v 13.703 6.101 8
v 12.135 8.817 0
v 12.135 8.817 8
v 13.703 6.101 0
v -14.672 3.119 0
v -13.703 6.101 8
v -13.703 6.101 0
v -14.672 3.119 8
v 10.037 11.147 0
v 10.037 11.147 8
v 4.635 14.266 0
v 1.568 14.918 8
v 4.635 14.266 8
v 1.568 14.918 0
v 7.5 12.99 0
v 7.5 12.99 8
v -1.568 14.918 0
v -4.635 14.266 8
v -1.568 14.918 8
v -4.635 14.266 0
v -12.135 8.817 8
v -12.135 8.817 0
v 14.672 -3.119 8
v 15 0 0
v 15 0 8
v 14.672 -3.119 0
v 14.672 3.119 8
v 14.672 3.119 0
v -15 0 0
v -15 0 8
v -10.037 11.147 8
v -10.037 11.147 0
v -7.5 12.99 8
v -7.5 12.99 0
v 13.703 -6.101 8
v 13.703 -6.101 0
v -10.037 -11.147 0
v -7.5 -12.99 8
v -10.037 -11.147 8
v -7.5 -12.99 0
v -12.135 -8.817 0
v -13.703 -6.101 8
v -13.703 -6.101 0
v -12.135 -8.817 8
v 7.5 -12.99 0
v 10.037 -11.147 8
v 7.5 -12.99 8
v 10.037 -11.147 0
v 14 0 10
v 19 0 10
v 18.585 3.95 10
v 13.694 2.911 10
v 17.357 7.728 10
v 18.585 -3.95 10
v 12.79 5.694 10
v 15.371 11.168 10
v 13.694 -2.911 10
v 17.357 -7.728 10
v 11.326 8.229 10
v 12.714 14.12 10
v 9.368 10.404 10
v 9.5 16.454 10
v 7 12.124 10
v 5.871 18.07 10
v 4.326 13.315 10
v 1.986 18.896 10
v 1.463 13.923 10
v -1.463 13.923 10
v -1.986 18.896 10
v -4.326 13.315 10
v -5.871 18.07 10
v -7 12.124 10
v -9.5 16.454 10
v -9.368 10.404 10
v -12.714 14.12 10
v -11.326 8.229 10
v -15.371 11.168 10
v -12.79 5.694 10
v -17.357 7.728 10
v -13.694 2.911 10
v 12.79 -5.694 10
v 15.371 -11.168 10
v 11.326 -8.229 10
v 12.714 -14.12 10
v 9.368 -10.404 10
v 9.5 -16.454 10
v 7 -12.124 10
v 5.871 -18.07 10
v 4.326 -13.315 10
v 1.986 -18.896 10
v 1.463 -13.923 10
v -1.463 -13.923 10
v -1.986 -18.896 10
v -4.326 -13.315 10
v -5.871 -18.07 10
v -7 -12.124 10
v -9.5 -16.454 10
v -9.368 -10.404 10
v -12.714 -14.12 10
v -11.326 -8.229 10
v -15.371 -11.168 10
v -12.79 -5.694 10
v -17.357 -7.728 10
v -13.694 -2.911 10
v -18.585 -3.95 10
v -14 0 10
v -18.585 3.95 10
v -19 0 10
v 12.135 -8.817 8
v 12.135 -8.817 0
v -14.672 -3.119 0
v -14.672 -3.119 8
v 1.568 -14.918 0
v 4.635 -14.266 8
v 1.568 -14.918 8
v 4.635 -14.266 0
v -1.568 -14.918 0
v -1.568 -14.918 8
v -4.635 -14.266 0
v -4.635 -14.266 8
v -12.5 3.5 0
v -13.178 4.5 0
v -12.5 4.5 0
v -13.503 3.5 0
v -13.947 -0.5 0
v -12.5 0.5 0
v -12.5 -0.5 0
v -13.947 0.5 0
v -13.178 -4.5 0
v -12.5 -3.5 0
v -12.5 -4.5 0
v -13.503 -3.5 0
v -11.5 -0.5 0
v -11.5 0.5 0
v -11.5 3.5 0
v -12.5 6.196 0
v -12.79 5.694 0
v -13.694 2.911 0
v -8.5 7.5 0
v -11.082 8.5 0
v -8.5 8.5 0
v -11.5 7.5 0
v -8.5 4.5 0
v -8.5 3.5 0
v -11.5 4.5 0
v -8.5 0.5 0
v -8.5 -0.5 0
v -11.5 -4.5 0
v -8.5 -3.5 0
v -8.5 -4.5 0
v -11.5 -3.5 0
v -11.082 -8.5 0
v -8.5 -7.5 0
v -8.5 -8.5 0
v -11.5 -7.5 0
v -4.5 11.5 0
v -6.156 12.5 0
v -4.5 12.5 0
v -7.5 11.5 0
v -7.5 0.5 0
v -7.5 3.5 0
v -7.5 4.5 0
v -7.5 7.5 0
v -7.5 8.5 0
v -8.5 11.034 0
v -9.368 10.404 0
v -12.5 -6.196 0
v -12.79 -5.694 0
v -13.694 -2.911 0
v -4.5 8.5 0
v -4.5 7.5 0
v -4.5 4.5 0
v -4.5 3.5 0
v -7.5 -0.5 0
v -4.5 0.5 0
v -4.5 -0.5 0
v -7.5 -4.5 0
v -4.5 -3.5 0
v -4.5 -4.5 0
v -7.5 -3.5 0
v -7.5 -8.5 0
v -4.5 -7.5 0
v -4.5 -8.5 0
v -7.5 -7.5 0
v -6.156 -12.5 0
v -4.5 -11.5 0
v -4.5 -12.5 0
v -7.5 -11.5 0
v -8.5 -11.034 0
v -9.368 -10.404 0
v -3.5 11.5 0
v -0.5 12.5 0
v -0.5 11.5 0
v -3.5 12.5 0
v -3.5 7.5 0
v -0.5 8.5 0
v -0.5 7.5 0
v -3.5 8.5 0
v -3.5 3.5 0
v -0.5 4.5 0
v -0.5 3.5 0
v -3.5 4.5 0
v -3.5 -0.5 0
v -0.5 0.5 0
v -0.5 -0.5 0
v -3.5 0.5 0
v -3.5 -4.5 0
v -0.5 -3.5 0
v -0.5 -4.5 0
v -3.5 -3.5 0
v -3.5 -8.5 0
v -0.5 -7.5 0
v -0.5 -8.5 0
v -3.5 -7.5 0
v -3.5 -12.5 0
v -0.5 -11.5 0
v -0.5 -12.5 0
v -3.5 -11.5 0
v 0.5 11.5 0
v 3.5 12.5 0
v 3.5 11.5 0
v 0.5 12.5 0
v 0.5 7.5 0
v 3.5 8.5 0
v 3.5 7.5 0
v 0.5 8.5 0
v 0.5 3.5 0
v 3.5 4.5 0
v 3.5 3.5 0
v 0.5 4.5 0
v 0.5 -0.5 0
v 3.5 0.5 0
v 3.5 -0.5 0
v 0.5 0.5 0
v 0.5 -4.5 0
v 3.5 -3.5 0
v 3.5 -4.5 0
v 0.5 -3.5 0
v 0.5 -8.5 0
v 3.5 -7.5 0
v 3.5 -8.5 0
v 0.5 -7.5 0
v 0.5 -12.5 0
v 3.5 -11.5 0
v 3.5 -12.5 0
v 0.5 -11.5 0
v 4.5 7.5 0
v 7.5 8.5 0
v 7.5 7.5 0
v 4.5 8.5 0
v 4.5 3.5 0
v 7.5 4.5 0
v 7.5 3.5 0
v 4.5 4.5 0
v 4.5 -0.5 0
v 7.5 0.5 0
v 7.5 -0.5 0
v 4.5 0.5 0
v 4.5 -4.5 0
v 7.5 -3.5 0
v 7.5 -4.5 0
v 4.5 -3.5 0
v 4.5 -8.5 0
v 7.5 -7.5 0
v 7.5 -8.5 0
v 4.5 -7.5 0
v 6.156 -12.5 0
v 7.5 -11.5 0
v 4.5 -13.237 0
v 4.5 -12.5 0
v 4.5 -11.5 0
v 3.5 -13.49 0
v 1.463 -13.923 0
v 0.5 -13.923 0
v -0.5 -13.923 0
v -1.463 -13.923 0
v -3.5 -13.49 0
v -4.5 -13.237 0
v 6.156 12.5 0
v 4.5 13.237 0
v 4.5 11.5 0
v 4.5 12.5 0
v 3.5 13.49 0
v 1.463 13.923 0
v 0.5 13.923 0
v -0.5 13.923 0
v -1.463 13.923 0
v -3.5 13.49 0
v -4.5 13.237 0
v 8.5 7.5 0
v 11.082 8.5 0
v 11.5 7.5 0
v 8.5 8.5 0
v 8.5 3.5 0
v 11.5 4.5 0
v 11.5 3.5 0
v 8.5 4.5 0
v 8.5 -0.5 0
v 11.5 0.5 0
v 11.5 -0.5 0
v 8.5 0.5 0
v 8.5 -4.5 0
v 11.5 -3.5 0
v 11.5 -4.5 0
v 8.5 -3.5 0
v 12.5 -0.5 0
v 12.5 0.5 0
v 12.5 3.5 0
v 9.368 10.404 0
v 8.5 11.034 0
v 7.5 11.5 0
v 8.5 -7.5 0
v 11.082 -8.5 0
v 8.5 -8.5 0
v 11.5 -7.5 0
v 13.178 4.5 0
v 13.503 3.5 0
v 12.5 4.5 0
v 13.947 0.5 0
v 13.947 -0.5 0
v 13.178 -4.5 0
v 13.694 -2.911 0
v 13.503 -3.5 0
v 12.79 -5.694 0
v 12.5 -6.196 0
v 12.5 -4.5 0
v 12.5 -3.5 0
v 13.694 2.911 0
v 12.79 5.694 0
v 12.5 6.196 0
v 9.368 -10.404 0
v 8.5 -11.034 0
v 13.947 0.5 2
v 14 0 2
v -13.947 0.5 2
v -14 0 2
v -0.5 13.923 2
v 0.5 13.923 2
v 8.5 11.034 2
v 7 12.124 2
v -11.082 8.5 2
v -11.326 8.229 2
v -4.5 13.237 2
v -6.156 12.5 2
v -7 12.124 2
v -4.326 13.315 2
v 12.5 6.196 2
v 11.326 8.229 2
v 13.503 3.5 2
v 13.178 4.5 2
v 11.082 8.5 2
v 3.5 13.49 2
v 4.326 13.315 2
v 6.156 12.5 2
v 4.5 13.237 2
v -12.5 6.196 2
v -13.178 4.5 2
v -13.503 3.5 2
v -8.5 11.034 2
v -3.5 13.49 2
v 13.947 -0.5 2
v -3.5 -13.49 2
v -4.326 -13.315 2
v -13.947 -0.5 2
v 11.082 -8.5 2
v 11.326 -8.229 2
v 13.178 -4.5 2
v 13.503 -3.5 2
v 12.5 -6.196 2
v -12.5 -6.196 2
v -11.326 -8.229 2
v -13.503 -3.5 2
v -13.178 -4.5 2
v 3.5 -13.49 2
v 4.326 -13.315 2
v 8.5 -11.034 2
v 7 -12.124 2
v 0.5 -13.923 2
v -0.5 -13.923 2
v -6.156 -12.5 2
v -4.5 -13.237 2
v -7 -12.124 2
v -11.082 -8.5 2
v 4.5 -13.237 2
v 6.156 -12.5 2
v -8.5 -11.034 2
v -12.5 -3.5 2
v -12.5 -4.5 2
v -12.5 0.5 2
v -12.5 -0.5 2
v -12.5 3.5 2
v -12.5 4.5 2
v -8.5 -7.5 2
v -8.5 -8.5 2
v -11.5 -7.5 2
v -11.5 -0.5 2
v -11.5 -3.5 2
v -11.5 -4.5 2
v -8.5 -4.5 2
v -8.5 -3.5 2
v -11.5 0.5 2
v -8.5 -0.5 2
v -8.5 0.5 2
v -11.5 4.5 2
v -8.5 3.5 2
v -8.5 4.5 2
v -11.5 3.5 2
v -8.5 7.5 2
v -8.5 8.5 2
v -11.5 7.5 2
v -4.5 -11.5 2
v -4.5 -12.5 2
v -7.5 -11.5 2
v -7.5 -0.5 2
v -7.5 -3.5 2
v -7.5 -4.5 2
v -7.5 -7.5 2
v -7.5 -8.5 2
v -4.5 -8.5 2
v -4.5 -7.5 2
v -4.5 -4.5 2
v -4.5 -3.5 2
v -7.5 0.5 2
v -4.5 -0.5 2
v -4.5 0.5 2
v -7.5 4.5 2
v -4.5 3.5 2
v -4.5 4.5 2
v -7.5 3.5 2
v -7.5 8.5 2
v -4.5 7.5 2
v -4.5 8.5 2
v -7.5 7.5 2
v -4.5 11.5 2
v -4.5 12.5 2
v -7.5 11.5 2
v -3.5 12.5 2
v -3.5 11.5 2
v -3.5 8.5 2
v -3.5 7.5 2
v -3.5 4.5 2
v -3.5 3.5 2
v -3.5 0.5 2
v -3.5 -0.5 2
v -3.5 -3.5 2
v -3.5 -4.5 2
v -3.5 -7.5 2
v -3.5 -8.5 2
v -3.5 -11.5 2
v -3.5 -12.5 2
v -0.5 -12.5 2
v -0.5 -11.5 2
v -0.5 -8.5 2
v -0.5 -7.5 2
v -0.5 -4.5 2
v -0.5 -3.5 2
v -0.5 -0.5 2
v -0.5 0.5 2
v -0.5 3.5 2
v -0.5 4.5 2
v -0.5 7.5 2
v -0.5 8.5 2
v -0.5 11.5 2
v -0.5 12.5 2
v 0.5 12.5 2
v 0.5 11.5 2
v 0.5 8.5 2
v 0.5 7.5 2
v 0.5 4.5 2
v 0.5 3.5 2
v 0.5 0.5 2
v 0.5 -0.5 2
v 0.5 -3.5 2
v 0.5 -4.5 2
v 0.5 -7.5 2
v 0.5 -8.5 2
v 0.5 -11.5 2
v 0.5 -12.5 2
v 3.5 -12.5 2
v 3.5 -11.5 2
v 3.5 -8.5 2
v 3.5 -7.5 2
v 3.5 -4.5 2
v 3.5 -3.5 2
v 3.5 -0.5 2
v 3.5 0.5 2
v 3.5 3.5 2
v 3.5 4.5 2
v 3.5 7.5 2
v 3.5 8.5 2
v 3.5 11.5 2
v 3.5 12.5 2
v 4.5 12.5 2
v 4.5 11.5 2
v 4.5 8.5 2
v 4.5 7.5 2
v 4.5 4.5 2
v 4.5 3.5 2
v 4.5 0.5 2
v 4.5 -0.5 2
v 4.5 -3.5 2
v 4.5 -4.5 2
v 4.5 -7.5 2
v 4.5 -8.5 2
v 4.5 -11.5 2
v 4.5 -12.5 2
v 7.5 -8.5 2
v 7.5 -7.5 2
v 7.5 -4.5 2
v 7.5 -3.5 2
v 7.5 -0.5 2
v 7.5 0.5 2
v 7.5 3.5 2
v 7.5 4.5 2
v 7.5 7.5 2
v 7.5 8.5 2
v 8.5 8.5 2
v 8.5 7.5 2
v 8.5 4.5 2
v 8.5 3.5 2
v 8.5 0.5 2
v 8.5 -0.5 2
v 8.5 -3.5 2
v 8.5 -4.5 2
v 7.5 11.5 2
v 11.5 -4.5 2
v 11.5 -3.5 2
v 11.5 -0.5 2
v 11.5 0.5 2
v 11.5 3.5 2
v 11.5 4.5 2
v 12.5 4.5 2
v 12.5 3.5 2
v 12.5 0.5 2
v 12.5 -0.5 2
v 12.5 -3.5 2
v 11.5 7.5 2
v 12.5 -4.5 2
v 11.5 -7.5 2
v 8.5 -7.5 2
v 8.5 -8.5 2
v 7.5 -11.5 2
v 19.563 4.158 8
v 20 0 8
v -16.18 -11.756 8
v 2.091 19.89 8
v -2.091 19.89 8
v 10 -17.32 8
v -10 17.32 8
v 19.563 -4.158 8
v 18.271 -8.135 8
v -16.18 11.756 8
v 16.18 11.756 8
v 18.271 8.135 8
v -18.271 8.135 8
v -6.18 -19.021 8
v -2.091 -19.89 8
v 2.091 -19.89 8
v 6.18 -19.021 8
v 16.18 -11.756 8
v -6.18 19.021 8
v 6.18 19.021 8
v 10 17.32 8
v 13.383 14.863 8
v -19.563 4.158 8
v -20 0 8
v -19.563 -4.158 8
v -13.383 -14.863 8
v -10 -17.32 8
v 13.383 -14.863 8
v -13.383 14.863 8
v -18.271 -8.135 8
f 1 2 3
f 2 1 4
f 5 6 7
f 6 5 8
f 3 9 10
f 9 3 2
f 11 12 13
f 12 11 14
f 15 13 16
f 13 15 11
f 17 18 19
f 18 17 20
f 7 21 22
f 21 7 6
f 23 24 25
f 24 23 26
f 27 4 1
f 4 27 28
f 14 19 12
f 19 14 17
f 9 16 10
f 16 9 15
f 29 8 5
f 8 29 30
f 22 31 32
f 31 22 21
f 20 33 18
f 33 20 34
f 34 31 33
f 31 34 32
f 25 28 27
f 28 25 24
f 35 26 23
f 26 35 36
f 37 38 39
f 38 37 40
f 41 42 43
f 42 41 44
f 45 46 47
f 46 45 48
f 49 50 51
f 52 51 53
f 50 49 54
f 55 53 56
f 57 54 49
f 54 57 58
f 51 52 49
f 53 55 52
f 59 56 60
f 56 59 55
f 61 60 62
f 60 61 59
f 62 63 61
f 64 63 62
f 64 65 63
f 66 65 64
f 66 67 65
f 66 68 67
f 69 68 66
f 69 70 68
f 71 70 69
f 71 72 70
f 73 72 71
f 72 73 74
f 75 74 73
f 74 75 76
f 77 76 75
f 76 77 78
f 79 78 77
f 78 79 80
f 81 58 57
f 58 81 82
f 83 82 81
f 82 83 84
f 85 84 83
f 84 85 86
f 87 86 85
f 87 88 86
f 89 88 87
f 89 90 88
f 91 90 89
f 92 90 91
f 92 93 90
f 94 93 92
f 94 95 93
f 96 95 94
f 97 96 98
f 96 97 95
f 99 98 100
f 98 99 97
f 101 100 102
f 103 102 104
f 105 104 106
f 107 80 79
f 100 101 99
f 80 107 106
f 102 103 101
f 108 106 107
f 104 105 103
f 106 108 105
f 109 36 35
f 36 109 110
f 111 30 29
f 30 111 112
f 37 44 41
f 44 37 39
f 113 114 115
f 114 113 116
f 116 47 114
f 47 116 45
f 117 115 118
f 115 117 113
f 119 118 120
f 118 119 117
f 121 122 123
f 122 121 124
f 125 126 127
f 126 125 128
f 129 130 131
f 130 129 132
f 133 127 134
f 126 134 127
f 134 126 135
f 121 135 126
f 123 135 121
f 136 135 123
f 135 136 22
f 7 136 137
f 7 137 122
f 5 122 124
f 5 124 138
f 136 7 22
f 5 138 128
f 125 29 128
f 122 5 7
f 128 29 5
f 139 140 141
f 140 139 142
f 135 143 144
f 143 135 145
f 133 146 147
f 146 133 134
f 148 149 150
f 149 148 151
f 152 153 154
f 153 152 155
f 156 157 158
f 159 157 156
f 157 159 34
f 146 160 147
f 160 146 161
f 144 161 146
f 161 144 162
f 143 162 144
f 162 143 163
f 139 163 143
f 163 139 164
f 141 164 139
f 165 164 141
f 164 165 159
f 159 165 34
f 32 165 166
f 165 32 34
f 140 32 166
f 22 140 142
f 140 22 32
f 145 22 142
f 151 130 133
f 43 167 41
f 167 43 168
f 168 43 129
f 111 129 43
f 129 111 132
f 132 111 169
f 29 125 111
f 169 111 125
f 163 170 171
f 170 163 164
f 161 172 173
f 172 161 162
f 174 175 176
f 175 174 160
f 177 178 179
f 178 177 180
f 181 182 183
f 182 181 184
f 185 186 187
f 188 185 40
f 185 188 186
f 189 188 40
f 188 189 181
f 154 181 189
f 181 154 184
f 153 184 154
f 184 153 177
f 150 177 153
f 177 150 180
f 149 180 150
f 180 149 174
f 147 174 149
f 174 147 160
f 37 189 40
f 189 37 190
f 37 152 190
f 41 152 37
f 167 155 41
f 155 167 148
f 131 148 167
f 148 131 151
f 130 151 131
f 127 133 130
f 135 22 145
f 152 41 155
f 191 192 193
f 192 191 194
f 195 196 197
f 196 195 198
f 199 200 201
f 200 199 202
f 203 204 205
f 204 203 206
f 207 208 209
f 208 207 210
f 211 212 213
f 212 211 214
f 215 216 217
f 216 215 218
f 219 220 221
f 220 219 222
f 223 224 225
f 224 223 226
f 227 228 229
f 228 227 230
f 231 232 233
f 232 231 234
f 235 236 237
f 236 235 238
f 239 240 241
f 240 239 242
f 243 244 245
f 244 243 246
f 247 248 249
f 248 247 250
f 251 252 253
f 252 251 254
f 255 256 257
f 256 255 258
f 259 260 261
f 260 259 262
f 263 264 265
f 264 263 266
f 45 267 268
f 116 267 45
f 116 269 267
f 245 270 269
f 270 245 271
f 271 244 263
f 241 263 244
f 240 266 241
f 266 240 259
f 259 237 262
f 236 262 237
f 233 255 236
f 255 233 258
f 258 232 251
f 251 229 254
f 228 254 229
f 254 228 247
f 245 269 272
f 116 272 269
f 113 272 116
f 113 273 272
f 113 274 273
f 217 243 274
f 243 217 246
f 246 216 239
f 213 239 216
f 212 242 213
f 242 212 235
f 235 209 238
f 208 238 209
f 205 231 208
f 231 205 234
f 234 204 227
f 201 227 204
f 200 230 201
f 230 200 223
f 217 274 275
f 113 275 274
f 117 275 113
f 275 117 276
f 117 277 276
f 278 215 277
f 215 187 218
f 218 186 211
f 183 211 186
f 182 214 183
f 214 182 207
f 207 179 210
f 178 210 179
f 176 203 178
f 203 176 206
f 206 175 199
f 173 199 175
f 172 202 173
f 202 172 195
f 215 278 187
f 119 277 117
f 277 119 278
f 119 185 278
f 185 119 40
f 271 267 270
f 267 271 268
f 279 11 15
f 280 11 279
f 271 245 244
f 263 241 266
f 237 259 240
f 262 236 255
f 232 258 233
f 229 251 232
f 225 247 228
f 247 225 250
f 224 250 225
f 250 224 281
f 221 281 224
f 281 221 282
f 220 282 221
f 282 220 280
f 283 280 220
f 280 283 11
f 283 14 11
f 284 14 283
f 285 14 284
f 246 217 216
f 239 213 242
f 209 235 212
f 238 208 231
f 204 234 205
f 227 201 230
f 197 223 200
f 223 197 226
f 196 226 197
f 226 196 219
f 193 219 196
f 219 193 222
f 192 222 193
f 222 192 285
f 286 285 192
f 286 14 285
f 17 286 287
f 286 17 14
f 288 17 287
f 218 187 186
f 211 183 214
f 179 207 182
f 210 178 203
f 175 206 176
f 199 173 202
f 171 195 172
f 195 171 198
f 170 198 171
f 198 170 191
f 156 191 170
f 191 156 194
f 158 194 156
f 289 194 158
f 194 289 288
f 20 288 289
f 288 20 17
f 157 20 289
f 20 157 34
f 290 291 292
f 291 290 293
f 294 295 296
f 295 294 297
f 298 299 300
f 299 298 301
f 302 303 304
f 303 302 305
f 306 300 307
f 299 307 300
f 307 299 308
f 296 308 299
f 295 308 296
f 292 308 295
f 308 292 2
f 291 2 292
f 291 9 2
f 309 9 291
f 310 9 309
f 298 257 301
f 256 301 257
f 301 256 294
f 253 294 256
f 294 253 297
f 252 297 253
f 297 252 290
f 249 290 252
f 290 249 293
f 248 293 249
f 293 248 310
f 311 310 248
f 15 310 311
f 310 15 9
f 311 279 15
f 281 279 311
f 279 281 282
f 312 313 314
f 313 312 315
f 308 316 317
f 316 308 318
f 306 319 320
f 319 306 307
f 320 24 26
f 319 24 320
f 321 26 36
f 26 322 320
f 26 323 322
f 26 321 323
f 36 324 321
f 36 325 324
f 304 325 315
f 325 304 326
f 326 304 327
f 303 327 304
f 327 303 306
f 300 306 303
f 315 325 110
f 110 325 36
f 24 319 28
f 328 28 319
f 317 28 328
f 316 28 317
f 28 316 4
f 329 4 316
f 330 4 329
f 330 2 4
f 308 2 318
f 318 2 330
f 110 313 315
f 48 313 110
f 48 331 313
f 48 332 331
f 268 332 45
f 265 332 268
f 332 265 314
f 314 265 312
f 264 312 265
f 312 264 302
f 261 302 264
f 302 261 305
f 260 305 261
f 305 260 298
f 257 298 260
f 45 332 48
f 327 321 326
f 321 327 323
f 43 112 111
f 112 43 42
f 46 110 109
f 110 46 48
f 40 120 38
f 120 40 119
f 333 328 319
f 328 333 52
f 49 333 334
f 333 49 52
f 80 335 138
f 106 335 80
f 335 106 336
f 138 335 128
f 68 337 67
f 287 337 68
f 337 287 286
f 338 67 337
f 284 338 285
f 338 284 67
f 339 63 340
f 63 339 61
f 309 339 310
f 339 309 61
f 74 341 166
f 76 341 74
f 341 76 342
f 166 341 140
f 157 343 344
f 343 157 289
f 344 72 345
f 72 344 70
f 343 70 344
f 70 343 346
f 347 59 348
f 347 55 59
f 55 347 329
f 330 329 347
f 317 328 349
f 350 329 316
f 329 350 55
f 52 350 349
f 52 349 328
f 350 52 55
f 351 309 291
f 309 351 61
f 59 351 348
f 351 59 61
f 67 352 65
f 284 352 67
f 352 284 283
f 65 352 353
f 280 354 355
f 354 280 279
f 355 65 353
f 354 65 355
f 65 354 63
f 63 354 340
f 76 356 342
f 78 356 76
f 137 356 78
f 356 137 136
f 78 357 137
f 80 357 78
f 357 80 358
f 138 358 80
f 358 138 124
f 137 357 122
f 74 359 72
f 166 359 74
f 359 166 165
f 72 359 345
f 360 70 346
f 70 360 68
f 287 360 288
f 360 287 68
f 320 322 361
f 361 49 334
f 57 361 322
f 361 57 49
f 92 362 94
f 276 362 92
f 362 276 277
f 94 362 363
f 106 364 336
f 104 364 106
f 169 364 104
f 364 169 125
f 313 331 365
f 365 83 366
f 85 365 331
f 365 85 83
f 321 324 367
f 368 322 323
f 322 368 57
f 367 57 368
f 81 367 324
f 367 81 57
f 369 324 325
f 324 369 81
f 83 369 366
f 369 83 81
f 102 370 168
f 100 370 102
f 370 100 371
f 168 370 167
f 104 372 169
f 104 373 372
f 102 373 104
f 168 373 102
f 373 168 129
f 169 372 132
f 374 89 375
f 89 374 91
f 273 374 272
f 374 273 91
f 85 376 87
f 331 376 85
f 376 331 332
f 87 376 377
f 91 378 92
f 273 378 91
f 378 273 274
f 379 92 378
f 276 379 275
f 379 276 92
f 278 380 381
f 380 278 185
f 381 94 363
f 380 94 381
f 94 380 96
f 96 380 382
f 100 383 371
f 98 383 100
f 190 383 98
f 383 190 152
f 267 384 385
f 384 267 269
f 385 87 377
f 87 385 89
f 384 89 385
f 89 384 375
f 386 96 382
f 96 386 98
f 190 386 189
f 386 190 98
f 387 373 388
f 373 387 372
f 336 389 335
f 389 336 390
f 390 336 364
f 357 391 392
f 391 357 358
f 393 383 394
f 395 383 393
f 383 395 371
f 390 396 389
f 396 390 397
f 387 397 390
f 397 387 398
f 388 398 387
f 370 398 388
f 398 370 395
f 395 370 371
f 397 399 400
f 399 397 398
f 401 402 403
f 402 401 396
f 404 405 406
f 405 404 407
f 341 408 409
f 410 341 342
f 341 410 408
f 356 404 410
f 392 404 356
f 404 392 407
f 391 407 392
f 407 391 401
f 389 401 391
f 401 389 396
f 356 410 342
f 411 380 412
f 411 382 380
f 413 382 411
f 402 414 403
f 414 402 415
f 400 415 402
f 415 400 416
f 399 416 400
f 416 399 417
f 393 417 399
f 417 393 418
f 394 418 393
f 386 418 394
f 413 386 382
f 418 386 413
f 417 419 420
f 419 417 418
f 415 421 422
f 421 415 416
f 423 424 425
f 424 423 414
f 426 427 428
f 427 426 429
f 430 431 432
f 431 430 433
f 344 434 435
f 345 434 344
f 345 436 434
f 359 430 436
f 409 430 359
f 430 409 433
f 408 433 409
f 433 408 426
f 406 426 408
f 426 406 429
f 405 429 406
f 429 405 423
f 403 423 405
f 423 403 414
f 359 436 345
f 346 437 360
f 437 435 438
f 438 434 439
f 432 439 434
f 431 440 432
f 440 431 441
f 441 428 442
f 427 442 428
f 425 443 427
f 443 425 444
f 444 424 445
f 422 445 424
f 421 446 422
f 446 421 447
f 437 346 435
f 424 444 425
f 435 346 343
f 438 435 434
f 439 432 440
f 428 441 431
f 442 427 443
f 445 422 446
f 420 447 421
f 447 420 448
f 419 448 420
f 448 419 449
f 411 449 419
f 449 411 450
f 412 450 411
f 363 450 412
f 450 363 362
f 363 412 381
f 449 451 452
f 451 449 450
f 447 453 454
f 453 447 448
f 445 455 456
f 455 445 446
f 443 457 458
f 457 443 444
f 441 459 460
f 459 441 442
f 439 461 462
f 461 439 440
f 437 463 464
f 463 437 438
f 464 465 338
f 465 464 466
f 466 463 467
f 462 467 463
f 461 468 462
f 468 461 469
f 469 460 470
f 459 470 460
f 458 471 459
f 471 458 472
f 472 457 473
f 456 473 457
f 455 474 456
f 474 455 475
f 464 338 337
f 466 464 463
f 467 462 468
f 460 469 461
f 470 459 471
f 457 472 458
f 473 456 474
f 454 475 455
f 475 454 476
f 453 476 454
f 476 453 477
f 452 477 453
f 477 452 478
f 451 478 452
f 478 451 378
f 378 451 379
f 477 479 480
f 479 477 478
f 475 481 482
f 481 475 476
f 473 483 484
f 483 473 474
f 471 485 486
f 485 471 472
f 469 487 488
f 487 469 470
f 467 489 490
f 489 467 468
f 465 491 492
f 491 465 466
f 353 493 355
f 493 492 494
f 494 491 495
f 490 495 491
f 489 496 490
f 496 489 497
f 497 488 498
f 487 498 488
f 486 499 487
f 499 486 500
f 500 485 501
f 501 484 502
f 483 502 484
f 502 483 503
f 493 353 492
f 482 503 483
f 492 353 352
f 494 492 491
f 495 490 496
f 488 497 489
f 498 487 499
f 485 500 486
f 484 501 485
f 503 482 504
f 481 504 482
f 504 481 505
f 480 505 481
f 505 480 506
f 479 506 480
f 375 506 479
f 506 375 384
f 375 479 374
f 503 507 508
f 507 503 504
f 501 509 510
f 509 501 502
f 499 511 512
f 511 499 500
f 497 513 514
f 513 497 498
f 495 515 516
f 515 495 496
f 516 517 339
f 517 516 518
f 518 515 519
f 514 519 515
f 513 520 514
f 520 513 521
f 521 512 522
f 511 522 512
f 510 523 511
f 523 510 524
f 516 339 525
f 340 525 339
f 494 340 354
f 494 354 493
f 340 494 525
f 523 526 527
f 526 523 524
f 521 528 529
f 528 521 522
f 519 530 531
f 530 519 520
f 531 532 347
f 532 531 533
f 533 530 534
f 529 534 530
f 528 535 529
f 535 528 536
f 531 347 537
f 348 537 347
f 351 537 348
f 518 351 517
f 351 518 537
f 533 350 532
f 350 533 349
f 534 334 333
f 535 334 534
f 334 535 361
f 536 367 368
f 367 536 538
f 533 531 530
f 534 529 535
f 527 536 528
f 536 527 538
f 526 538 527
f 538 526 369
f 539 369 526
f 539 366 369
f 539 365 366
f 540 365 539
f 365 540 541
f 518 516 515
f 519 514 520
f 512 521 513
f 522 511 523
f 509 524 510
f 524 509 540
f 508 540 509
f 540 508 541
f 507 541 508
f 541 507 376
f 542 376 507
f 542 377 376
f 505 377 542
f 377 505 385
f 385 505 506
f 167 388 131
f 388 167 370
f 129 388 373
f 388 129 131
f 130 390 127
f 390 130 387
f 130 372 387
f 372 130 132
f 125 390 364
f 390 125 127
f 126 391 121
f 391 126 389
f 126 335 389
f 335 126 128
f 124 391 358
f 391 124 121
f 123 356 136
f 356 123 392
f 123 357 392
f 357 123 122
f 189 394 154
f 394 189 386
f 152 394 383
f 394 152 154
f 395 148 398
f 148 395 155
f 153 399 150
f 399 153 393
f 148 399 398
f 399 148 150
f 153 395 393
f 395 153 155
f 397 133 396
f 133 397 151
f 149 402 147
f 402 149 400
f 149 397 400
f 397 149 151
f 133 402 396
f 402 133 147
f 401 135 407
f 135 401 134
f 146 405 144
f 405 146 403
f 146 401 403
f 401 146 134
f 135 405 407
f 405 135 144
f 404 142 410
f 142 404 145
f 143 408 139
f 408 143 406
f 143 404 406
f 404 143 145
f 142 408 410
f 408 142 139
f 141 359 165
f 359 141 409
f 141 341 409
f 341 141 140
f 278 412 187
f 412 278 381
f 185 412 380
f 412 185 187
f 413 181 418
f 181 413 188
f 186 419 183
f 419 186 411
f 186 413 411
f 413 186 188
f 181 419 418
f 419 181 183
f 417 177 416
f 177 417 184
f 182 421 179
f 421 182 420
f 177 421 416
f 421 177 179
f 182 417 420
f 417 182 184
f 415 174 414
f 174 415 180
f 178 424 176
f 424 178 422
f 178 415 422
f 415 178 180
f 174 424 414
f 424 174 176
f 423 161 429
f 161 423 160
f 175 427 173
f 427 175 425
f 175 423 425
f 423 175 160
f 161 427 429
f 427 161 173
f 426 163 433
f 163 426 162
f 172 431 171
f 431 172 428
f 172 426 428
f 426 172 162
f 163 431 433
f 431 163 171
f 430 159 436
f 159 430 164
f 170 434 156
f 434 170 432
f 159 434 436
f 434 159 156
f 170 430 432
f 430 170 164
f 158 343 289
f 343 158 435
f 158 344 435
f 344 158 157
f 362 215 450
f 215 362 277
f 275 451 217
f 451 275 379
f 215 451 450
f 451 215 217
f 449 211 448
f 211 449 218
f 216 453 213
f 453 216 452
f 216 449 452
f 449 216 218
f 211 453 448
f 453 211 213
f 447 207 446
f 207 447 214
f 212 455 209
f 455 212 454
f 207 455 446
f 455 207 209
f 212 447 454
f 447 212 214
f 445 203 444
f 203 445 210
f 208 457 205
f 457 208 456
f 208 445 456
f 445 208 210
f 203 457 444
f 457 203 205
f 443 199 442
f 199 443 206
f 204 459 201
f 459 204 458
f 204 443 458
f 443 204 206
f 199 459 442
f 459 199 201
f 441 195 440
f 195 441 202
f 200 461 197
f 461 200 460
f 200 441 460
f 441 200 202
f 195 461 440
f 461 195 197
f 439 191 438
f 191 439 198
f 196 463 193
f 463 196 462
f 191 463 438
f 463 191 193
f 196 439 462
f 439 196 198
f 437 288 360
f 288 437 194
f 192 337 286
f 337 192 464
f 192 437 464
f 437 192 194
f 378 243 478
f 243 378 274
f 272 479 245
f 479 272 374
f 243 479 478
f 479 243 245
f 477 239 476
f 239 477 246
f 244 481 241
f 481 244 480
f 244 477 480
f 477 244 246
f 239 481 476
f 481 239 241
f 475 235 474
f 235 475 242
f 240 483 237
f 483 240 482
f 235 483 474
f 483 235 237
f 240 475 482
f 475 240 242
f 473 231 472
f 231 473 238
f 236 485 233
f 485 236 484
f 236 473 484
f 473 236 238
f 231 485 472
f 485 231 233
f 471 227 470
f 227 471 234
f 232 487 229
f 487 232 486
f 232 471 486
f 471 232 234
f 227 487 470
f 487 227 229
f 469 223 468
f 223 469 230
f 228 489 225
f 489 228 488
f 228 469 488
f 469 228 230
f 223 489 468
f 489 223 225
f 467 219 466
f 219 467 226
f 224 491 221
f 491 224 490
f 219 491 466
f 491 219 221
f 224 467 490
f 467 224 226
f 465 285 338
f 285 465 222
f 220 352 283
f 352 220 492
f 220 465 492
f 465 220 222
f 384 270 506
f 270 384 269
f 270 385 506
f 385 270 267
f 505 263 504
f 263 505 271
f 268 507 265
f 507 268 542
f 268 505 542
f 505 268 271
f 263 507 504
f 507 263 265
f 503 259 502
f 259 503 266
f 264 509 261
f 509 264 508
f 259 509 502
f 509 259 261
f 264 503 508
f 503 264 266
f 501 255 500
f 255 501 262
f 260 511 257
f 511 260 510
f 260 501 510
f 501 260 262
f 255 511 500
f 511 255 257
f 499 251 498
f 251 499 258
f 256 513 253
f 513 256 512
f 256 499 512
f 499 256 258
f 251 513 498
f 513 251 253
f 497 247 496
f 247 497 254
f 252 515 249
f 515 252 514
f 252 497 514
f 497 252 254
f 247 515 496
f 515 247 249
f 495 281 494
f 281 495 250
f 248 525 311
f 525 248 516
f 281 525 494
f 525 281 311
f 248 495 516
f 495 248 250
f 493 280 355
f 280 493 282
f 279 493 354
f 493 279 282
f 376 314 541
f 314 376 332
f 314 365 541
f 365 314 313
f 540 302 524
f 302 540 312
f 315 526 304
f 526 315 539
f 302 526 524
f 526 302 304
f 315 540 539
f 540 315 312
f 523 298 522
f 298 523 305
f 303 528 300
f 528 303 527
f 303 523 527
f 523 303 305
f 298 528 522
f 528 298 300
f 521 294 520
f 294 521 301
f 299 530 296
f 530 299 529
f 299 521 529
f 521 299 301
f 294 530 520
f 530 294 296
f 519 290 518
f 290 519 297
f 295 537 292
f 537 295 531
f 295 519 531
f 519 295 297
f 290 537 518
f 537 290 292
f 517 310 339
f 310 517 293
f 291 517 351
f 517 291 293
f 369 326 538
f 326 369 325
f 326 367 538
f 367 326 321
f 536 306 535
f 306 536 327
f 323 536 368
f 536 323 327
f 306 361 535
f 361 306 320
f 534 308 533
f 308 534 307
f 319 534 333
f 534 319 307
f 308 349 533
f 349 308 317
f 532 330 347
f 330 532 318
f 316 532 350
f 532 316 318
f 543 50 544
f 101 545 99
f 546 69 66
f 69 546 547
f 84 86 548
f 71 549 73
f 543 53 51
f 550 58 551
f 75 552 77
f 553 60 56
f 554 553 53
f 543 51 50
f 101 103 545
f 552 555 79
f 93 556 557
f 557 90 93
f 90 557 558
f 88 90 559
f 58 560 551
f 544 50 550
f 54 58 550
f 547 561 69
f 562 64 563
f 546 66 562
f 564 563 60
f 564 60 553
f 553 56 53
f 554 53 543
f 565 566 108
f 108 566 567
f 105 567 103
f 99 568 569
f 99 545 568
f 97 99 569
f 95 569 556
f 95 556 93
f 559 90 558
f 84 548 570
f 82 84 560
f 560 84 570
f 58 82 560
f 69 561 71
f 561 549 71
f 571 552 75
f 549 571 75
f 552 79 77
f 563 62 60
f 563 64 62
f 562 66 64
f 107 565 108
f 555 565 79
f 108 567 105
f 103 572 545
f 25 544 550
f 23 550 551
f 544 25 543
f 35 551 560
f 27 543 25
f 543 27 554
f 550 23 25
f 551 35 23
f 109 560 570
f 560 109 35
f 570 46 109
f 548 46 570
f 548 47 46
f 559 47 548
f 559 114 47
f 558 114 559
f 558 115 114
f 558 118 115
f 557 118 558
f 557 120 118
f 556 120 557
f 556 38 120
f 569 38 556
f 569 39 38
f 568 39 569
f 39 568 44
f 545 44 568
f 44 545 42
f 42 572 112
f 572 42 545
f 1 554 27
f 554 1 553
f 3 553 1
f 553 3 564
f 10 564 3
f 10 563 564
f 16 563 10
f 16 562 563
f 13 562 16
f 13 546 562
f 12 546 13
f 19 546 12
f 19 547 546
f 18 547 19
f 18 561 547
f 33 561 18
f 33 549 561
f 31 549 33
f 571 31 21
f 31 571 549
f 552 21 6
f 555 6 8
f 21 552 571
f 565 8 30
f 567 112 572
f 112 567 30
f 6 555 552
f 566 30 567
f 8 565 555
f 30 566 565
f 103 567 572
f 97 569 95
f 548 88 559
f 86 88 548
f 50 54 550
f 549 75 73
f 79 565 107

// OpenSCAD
// Drain Strainer
// by Nathan Wittstock <nate@fardog.io>

// preview[view: south east, tilt: top diagonal]

/* [Strainer] */
strainer_x_mm = 3.0; //[1.0:10.0]
strainer_y_mm = 3.0; //[1.0:10.0]
strainer_thickness_mm = 2.0; //[1.0:3.0]
strainer_grid_spacing_mm = 1.0; //[0.5:3.0]

/* [Drain] */
drain_diameter_mm = 30.0; //[5.0:150.0]
drain_depth_mm = 10.0; //[0.0:50.0]
drain_sleeve_thickness = 2.0; //[1.0:3.0]

/* [Skirt] */
skirt_diameter_mm = 40.0; //[5.0:200.0]
skirt_upper_diameter_mm = 38.0; //[5.0:200.0]
skirt_thickness_mm = 2.0; //[1.0:3.0]

/* [Hidden] */
skirt_z_offset = drain_depth_mm - skirt_thickness_mm;

module drain_sleeve() {
    difference() {
        cylinder(h=drain_depth_mm, d=drain_diameter_mm);
        cylinder(h=drain_depth_mm, d=drain_diameter_mm-drain_sleeve_thickness);
    }
}

module strainer() {
    union() {
        difference() {
            cylinder(h=strainer_thickness_mm, d=drain_diameter_mm);
            cylinder(h=strainer_thickness_mm, d=drain_diameter_mm-drain_sleeve_thickness);
        }
        difference() {
            cylinder(h=strainer_thickness_mm, d=drain_diameter_mm);

            x_size = strainer_x_mm + strainer_grid_spacing_mm;
            x_total = ceil(drain_diameter_mm / x_size) * x_size;
            x_offset = (x_total - strainer_grid_spacing_mm) / 2;
            y_size = strainer_y_mm + strainer_grid_spacing_mm;
            y_total = ceil(drain_diameter_mm / y_size) * y_size;
            y_offset = (y_total - strainer_grid_spacing_mm) / 2;

            translate([-x_offset, -y_offset, 0]) {
                for (x = [0:x_size:drain_diameter_mm]) {
                    translate([x,0,0])
                    for (y = [0:y_size:drain_diameter_mm]) {
                        translate([0, y, 0])
                            cube([strainer_x_mm, strainer_y_mm, strainer_thickness_mm]);
                    }
                }
            }
        }
    }
}

module skirt() {
    difference() {
        cylinder(h=skirt_thickness_mm, d1=skirt_diameter_mm, d2=skirt_upper_diameter_mm);
        cylinder(h=skirt_thickness_mm, d=drain_diameter_mm);
    }
}

union() {
    drain_sleeve();
    strainer();
    translate([0, 0, skirt_z_offset])
        skirt();
}
